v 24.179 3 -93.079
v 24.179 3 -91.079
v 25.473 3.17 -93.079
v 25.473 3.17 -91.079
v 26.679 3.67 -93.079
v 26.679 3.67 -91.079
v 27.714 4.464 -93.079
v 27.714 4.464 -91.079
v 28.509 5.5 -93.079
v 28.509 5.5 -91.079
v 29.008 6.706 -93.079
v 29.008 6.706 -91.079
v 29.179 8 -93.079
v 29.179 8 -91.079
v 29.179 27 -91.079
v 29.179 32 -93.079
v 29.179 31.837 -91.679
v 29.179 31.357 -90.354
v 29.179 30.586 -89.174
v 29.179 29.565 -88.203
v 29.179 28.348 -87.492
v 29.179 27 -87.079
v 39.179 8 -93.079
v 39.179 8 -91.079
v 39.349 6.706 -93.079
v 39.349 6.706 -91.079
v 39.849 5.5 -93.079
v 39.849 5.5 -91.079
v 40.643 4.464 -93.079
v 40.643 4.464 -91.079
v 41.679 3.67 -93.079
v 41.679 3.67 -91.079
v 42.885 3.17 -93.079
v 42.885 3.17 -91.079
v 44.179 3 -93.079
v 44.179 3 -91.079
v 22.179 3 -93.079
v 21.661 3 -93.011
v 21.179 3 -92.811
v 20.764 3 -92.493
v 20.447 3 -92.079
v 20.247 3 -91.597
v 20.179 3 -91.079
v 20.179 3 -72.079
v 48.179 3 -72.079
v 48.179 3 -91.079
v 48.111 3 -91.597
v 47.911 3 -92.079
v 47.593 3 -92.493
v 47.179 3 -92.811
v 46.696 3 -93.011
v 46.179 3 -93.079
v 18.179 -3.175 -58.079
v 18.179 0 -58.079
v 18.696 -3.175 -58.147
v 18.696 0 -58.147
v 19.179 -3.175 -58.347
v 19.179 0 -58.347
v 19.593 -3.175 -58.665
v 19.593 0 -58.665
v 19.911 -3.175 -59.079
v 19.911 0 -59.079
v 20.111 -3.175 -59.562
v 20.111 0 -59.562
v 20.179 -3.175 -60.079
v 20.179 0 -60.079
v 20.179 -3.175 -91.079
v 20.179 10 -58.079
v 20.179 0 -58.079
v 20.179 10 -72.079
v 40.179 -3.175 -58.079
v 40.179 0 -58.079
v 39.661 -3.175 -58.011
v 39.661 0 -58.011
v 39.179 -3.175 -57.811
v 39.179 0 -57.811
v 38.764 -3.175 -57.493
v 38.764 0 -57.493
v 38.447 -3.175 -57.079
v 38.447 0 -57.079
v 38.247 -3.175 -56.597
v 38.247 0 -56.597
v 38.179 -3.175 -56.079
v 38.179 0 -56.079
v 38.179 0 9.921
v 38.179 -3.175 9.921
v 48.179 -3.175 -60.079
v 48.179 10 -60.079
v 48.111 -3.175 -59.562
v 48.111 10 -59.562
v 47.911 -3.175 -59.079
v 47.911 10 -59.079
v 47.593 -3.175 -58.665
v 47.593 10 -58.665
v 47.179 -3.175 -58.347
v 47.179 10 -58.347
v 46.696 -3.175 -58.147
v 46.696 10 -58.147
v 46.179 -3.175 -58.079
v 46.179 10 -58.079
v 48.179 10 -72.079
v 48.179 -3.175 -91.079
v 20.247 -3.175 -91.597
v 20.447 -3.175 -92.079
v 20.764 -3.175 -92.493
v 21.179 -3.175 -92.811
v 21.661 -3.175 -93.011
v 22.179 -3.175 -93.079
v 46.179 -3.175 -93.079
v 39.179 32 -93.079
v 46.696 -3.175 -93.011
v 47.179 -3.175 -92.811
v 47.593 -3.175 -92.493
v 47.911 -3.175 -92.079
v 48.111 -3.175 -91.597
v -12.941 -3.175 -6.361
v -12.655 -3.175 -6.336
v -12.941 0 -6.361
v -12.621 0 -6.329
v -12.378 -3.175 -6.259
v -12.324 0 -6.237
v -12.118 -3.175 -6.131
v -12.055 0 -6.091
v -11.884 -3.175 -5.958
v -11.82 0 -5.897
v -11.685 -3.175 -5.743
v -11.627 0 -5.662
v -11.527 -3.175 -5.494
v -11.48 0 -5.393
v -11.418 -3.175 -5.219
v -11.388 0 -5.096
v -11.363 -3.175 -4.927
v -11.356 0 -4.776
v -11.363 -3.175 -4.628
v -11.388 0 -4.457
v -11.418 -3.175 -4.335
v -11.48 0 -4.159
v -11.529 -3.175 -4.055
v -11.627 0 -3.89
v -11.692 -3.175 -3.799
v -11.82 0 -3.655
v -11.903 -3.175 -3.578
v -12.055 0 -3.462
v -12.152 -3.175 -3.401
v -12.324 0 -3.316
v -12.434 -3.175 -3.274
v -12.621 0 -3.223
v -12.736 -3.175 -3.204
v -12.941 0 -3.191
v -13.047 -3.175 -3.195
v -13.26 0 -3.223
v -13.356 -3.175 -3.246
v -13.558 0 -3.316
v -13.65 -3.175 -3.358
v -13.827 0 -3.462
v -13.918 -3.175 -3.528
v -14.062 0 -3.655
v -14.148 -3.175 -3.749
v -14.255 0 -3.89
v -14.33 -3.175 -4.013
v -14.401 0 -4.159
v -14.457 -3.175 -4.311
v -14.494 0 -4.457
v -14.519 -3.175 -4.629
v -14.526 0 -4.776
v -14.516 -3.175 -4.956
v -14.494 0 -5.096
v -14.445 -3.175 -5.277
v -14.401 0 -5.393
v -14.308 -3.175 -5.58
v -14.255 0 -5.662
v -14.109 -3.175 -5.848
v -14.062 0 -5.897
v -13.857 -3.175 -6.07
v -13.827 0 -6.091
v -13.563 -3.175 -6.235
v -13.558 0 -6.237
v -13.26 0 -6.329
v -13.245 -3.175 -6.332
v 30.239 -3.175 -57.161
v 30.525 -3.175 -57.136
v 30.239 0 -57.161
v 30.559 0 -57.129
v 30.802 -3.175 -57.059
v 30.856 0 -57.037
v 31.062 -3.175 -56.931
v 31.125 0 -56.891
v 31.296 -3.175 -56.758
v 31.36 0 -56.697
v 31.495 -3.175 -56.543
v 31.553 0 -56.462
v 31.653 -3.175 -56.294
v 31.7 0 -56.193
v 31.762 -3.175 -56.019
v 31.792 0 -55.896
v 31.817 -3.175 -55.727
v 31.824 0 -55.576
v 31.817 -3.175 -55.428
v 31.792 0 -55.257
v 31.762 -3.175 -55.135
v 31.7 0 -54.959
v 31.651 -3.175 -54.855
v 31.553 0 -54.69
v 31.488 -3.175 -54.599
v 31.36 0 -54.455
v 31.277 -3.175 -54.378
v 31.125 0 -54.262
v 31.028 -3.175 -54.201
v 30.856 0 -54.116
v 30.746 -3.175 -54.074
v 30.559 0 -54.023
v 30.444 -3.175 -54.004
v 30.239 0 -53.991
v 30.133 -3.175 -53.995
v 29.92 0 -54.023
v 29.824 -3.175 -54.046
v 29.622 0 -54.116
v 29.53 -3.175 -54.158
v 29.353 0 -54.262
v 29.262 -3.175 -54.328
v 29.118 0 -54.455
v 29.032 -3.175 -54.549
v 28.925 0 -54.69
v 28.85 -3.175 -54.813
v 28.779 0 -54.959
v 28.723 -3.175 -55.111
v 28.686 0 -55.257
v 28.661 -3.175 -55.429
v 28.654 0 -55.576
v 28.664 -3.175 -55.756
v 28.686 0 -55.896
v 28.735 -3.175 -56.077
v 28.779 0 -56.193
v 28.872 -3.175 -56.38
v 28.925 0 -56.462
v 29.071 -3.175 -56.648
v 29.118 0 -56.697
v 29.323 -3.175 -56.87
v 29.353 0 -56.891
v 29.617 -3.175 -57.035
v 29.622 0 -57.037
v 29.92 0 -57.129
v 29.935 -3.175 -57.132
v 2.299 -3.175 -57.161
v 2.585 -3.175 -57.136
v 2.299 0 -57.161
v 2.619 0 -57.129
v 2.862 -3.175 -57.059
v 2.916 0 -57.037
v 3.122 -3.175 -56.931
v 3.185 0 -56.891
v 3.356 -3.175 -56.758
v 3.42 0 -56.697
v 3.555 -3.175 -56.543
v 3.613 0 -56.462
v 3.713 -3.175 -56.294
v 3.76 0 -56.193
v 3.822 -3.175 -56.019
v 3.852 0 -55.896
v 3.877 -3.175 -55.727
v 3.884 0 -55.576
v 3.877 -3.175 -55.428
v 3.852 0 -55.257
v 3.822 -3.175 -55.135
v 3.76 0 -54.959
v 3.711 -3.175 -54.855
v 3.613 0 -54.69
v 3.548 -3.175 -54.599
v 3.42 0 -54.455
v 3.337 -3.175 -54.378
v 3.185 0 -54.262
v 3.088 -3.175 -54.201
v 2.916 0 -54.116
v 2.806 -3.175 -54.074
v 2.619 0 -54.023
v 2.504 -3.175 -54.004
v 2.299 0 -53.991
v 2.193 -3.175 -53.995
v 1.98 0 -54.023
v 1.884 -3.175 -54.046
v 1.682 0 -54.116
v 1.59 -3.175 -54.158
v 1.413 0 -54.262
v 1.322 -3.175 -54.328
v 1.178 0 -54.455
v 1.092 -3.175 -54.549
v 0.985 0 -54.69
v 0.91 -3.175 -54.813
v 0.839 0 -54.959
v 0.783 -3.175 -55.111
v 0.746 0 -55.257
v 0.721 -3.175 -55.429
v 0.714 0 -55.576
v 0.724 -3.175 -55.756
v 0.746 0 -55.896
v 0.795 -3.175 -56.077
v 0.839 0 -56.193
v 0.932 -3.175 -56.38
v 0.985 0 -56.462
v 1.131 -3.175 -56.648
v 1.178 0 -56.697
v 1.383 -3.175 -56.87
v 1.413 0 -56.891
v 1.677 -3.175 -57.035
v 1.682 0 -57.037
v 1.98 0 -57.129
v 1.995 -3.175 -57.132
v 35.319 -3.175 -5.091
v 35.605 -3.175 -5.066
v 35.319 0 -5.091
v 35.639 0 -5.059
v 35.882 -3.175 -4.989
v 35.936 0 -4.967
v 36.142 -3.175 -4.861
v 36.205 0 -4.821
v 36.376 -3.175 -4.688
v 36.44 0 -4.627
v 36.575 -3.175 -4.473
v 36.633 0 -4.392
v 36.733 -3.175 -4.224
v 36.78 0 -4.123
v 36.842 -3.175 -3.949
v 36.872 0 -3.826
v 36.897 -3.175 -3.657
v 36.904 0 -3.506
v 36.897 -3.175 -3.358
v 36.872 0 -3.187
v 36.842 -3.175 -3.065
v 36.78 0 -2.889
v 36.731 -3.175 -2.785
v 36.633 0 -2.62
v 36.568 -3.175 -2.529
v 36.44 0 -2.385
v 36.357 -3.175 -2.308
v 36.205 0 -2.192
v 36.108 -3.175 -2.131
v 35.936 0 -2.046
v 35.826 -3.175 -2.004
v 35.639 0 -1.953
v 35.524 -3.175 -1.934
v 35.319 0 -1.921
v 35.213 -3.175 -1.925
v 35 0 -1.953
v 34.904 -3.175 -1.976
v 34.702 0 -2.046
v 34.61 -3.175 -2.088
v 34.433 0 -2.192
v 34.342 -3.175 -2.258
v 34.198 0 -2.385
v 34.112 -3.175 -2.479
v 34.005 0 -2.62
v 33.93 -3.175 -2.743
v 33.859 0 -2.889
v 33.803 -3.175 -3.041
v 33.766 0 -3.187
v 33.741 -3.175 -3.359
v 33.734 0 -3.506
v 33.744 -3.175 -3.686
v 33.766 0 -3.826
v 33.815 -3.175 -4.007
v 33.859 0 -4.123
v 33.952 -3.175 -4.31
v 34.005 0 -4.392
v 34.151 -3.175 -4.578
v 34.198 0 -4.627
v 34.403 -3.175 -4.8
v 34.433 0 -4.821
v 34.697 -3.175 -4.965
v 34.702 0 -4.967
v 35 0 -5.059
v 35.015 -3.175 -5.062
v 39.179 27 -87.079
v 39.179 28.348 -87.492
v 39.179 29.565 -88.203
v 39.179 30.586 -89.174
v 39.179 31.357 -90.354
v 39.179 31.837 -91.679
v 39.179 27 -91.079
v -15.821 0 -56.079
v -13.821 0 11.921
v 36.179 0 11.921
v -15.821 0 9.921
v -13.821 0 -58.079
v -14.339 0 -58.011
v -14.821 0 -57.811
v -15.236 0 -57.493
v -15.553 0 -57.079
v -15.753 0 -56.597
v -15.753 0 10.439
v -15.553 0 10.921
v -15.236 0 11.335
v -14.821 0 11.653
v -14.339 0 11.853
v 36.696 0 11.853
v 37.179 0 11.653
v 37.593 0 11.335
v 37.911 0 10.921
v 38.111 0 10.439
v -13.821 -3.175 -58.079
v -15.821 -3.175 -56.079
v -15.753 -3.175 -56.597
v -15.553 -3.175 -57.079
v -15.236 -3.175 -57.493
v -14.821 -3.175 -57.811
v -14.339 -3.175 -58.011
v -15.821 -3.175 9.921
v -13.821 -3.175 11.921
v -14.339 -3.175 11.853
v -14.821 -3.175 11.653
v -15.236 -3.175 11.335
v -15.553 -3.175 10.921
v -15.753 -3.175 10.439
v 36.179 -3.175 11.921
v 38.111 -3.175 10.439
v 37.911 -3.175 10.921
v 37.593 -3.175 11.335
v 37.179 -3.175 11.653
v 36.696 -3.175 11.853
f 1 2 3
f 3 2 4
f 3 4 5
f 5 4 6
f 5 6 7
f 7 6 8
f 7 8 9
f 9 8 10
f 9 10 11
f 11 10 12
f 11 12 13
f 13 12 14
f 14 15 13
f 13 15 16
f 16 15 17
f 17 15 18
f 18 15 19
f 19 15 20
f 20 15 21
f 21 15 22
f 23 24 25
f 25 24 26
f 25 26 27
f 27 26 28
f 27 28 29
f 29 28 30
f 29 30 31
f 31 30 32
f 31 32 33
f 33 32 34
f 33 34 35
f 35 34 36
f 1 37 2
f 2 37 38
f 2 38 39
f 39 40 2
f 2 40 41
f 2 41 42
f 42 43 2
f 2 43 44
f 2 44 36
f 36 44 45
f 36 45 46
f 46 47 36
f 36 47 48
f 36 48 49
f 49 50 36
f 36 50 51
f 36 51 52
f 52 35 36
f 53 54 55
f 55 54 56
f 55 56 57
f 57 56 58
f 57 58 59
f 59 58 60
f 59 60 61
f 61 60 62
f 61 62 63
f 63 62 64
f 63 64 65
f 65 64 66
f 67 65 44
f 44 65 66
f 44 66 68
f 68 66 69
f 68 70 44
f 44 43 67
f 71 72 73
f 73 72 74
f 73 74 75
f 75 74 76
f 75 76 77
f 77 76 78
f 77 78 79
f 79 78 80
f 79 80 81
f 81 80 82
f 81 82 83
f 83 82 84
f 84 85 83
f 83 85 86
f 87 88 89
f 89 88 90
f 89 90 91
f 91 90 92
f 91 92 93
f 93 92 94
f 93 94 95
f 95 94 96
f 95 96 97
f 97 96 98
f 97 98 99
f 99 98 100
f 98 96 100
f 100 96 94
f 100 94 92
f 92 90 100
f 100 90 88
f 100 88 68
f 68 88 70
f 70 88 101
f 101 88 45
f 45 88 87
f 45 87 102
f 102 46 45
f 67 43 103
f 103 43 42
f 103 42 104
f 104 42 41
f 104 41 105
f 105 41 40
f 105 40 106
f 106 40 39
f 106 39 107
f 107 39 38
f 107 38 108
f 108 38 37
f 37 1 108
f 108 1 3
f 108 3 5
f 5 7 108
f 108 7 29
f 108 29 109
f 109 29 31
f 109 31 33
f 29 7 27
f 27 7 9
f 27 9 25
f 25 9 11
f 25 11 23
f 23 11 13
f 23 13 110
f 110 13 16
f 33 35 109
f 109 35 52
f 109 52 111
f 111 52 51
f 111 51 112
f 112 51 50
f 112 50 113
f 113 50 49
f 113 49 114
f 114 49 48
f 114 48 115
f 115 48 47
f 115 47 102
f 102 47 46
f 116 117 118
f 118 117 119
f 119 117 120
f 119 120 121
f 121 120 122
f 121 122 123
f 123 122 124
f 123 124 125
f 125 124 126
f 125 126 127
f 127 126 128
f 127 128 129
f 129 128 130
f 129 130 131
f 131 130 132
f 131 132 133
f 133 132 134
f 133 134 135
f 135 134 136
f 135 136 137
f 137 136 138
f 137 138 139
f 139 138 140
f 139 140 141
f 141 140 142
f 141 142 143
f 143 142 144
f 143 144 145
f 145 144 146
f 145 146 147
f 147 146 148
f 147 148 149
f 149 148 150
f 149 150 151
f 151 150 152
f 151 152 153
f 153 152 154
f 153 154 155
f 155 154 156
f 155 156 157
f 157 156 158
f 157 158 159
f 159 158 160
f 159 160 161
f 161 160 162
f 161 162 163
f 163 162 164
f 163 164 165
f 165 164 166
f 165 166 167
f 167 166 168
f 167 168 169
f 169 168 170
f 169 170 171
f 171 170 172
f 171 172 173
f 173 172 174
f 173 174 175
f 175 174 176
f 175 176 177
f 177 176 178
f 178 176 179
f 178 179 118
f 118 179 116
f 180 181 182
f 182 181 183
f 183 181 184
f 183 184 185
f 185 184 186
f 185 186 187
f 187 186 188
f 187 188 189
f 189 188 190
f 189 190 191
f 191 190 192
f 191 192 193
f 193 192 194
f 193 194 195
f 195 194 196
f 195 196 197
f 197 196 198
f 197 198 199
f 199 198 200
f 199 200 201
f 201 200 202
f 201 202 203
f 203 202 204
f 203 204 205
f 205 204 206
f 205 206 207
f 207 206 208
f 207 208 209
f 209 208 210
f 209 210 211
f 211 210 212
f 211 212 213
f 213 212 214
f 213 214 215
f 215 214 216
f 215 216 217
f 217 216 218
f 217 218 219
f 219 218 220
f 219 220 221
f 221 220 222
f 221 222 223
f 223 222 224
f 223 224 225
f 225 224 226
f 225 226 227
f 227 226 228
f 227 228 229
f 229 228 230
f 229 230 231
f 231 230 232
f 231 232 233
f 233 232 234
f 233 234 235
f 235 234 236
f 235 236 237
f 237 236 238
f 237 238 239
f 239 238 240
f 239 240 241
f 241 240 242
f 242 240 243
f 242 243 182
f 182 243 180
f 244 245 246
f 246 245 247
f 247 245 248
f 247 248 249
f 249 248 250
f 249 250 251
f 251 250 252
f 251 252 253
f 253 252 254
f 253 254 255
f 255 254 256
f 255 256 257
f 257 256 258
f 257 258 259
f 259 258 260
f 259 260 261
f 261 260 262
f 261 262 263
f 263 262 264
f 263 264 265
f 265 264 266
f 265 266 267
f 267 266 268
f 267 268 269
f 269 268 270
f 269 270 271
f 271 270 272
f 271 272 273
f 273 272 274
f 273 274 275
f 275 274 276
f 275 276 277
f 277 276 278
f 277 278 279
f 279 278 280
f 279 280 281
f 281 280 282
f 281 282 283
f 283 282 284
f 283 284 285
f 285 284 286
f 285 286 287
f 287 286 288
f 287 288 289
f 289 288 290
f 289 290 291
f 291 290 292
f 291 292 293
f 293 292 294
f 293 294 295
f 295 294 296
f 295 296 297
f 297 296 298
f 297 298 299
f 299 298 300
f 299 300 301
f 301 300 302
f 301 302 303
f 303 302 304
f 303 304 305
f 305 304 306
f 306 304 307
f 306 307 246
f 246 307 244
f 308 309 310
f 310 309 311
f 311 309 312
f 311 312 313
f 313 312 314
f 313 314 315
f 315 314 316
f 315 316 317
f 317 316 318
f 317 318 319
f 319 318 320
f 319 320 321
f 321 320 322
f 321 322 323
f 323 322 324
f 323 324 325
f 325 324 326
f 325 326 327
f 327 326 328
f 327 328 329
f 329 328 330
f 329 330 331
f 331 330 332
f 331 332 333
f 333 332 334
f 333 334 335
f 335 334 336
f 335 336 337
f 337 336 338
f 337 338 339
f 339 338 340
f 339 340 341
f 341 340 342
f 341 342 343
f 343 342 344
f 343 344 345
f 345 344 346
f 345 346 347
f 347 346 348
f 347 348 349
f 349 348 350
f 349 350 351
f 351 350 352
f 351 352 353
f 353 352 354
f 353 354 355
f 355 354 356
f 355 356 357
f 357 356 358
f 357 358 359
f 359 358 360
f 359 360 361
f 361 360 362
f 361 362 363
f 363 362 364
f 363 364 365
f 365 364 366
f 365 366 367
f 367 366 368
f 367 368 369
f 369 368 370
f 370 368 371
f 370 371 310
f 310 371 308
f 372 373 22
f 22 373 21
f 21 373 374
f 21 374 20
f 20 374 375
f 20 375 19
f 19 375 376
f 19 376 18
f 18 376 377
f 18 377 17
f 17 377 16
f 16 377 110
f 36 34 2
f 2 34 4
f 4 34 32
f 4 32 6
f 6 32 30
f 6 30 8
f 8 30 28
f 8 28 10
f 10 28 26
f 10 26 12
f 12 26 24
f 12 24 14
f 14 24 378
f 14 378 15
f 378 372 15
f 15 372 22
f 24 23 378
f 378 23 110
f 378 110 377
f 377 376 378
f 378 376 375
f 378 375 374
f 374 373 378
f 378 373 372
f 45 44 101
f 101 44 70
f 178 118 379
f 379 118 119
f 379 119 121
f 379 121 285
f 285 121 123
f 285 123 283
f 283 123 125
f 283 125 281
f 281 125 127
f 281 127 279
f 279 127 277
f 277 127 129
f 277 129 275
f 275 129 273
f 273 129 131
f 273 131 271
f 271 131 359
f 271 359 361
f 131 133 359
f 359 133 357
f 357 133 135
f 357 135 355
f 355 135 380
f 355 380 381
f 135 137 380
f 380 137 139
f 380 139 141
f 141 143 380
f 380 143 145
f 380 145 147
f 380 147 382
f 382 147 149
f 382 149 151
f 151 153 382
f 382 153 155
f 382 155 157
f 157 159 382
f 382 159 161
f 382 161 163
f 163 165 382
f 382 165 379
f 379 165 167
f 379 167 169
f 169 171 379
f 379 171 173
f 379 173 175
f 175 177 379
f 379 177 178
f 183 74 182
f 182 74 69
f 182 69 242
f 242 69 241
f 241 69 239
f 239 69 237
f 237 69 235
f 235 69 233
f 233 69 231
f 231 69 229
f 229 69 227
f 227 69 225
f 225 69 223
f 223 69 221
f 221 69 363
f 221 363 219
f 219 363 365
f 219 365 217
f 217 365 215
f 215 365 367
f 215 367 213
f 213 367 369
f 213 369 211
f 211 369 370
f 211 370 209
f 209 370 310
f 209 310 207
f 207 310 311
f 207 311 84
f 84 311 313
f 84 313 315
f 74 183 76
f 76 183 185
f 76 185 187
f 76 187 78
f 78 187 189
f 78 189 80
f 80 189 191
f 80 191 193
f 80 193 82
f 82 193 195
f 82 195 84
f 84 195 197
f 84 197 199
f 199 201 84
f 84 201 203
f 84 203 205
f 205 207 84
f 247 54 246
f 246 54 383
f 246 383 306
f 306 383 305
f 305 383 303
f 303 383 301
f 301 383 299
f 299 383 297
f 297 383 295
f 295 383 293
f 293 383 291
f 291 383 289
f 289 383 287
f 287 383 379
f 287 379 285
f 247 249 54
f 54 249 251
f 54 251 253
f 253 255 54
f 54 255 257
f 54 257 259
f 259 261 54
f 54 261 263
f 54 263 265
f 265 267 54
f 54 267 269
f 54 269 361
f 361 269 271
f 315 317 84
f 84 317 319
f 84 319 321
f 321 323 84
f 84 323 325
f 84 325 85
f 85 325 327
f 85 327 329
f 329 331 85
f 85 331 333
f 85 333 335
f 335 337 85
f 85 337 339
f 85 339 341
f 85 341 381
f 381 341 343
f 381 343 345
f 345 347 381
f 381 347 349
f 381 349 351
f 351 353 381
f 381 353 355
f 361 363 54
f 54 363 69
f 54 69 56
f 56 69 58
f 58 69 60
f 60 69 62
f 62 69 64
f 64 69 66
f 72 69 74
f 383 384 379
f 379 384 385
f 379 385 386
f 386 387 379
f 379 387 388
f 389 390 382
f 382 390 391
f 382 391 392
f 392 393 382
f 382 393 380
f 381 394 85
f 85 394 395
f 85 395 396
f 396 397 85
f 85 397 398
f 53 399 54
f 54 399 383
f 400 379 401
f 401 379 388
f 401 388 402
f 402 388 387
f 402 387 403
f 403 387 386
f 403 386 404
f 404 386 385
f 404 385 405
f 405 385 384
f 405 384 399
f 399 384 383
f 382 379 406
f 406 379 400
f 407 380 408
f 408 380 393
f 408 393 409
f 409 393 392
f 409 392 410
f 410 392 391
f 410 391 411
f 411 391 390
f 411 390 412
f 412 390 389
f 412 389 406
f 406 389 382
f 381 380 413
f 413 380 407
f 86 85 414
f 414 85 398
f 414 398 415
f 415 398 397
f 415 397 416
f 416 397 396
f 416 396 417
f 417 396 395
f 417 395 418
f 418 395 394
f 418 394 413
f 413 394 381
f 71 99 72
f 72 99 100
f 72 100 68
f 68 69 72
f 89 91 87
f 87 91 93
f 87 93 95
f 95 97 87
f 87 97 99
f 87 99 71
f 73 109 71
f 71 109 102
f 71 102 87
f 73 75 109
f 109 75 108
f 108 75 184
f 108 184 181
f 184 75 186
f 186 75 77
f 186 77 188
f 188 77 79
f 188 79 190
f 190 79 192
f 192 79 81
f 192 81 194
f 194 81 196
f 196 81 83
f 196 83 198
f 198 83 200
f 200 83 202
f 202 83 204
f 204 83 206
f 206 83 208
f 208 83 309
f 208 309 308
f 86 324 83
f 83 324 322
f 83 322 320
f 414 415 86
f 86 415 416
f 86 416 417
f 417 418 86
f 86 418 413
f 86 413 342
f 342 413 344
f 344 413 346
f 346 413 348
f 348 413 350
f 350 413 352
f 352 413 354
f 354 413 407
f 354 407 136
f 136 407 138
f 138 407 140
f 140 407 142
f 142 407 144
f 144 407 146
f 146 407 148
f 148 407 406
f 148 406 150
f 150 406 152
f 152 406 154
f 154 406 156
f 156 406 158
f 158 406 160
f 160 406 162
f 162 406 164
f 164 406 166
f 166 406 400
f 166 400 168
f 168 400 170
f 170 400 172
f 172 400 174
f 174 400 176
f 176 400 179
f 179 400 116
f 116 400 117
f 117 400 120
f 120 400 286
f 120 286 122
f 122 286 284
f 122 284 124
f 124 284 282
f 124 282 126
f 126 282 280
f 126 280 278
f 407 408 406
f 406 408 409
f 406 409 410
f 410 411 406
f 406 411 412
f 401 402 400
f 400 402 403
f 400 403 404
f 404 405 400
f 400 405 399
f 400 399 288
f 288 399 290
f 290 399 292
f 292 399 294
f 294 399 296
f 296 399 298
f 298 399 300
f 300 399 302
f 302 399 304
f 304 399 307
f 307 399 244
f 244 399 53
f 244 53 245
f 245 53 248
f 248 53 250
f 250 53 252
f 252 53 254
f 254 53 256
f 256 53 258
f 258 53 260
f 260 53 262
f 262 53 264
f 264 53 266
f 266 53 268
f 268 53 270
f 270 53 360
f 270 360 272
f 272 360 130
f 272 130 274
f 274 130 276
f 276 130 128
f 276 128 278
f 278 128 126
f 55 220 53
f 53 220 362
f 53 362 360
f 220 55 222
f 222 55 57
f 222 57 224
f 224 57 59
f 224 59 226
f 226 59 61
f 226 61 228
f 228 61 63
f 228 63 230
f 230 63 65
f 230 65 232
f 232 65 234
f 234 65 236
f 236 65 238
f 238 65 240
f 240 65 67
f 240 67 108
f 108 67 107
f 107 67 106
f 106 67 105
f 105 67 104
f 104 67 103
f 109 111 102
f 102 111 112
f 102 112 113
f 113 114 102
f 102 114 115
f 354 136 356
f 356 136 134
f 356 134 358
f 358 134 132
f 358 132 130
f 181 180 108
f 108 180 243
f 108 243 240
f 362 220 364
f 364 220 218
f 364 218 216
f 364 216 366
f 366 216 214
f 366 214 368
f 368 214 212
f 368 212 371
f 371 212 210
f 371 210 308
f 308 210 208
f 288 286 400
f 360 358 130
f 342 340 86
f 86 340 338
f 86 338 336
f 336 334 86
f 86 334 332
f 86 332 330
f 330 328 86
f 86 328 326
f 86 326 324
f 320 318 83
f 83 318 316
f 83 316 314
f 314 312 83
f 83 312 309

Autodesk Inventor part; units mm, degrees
ref_plane "YZ Plane" through (0, 0, 0) normal (1, 0, 0) x (0, 1, 0)
ref_plane "XZ Plane" through (0, 0, 0) normal (0, 1, 0) x (-1, 0, 0)
ref_plane "XY Plane" through (0, 0, 0) normal (0, 0, 1) x (1, 0, 0)
sketch "Sketch1" plane through (0, 0, 0) normal (0, 1, 0) x (-1, 0, 0)
  line L0 (13.8213, 11.9209) -> (-36.1787, 11.9209)
  line L1 (-38.1787, 9.9209) -> (-38.1787, -58.0791)
  line L2 (-38.1787, -58.0791) -> (13.8213, -58.0791)
  line L3 (15.8213, -56.0791) -> (15.8213, 9.9209)
  line L4 (-20.1787, -58.0791) -> (-48.1787, -58.0791)
  line L5 (-48.1787, -58.0791) -> (-48.1787, -93.0791)
  line L6 (-48.1787, -93.0791) -> (-20.1787, -93.0791)
  line L7 (-20.1787, -93.0791) -> (-20.1787, -58.0791)
  arc A0 (15.8213, 9.9209) -> (13.8213, 11.9209) centre (13.8213, 9.9209) ccw
  arc A1 (13.8213, -58.0791) -> (15.8213, -56.0791) centre (13.8213, -56.0791) ccw
  arc A2 (-36.1787, 11.9209) -> (-38.1787, 9.9209) centre (-36.1787, 9.9209) ccw
  point P0 (0, 0)
  point P1 (15.8213, 11.9209)
  point P2 (-38.1787, 11.9209)
  point P3 (15.8213, -58.0791)
  dimension "d0" = 54
  dimension "d1" = 70
  dimension "d2" = 28
  dimension "d3" = 10
  dimension "d4" = 35
  dimension "d20" = 2
extrude "Extrusion1" add sketch "Sketch1" against normal blind 3.175
sketch "Sketch2" plane through (0, 0, 0) normal (0, 1, 0) x (1, 0, 0)
  line L0 (20.1787, 93.0791) -> (20.1787, 58.0791) projected
  line L1 (48.1787, 58.0791) -> (48.1787, 93.0791) projected
  line L2 (20.1787, 93.0791) -> (48.1787, 93.0791)
  line L3 (48.1787, 93.0791) -> (48.1787, 72.0791)
  line L4 (48.1787, 72.0791) -> (20.1787, 72.0791)
  line L5 (20.1787, 72.0791) -> (20.1787, 93.0791)
  line L6 (38.1787, 58.0791) -> (48.1787, 58.0791) projected
  point P0 (0, 0)
  dimension "d7" = 14
extrude "Extrusion2" add sketch "Sketch2" along normal blind 3
sketch "Sketch3" plane through (0, 0, 0) normal (0, 1, 0) x (1, 0, 0)
  line L0 (48.1787, 72.0791) -> (20.1787, 72.0791) projected
  line L1 (48.1787, 93.0791) -> (48.1787, 58.0791) projected
  line L2 (20.1787, 72.0791) -> (48.1787, 72.0791)
  line L3 (48.1787, 72.0791) -> (48.1787, 58.0791)
  line L4 (48.1787, 58.0791) -> (20.1787, 58.0791)
  line L5 (20.1787, 58.0791) -> (20.1787, 72.0791)
  point P0 (0, 0)
extrude "Extrusion3" add sketch "Sketch3" along normal blind 10
ref_plane "Work Plane1" through (34.1787, -3.175, -58.0791) normal (1, 0, 0) x (0, 0, -1)
sketch "Sketch4" plane through (34.1787, -3.175, -58.0791) normal (1, 0, 0) x (0, 0, -1)
  line L0 (29, 30.175) -> (33, 30.175)
  line L1 (33, 30.175) -> (33, 6.175)
  line L2 (35, 6.175) -> (14, 6.175) projected
  line L3 (35, 6.175) -> (35, 35.175)
  arc A0 (35, 35.175) -> (29, 30.175) centre (35, 29.075) ccw
  point P0 (-58.0791, 3.175)
  dimension "d12" = 2
  dimension "d13" = 29
  dimension "d14" = 24
  dimension "d15" = 4
extrude "Extrusion4" add sketch "Sketch4" along normal mid plane 10
sketch "Sketch5" plane through (0, 0, 0) normal (0, 1, 0) x (1, 0, 0)
  line L0 (37.8591, -10.4638) -> (37.8591, 55.5762)
  line L1 (37.8591, 55.5762) -> (35.3191, 55.5762)
  line L2 (35.3191, 55.5762) -> (32.7791, 58.1162)
  line L3 (32.7791, 58.1162) -> (-0.2409, 58.1162)
  line L4 (-0.2409, 58.1162) -> (-2.7809, 55.5762)
  line L5 (-2.7809, 55.5762) -> (-14.2109, 55.5762)
  line L6 (-14.2109, 55.5762) -> (-15.4809, 54.3062)
  line L7 (-15.4809, 54.3062) -> (-15.4809, -10.4638)
  line L8 (-15.4809, -10.4638) -> (37.8591, -10.4638)
  spline S0 degree 3 poles (30.2391, 57.1613) (31.1145, 57.1613) (31.8242, 56.4516) (31.8242, 55.5762) (31.8242, 54.7008) (31.1145, 53.9911) (30.2391, 53.9911) (29.3637, 53.9911) (28.654, 54.7008) (28.654, 55.5762) (28.654, 56.4516) (29.3637, 57.1613) (30.2391, 57.1613) knots 0 0 0 0 1 1 1 2 2 2 3 3 3 4 4 4 4
  line L9 (30.2391, 57.1613) -> (31.1145, 57.1613) construction
  line L10 (31.1145, 57.1613) -> (31.8242, 56.4516) construction
  line L11 (31.8242, 56.4516) -> (31.8242, 55.5762) construction
  line L12 (31.8242, 55.5762) -> (31.8242, 54.7008) construction
  line L13 (31.8242, 54.7008) -> (31.1145, 53.9911) construction
  line L14 (31.1145, 53.9911) -> (30.2391, 53.9911) construction
  line L15 (30.2391, 53.9911) -> (29.3637, 53.9911) construction
  line L16 (29.3637, 53.9911) -> (28.654, 54.7008) construction
  line L17 (28.654, 54.7008) -> (28.654, 55.5762) construction
  line L18 (28.654, 55.5762) -> (28.654, 56.4516) construction
  line L19 (28.654, 56.4516) -> (29.3637, 57.1613) construction
  line L20 (29.3637, 57.1613) -> (30.2391, 57.1613) construction
  spline S1 degree 3 poles (2.2991, 57.1613) (3.1745, 57.1613) (3.8842, 56.4516) (3.8842, 55.5762) (3.8842, 54.7008) (3.1745, 53.9911) (2.2991, 53.9911) (1.4237, 53.9911) (0.714, 54.7008) (0.714, 55.5762) (0.714, 56.4516) (1.4237, 57.1613) (2.2991, 57.1613) knots 0 0 0 0 1 1 1 2 2 2 3 3 3 4 4 4 4
  line L21 (2.2991, 57.1613) -> (3.1745, 57.1613) construction
  line L22 (3.1745, 57.1613) -> (3.8842, 56.4516) construction
  line L23 (3.8842, 56.4516) -> (3.8842, 55.5762) construction
  line L24 (3.8842, 55.5762) -> (3.8842, 54.7008) construction
  line L25 (3.8842, 54.7008) -> (3.1745, 53.9911) construction
  line L26 (3.1745, 53.9911) -> (2.2991, 53.9911) construction
  line L27 (2.2991, 53.9911) -> (1.4237, 53.9911) construction
  line L28 (1.4237, 53.9911) -> (0.714, 54.7008) construction
  line L29 (0.714, 54.7008) -> (0.714, 55.5762) construction
  line L30 (0.714, 55.5762) -> (0.714, 56.4516) construction
  line L31 (0.714, 56.4516) -> (1.4237, 57.1613) construction
  line L32 (1.4237, 57.1613) -> (2.2991, 57.1613) construction
  spline S2 degree 3 poles (-12.9409, 6.3613) (-12.0655, 6.3613) (-11.3558, 5.6516) (-11.3558, 4.7762) (-11.3558, 3.9008) (-12.0655, 3.1911) (-12.9409, 3.1911) (-13.8163, 3.1911) (-14.526, 3.9008) (-14.526, 4.7762) (-14.526, 5.6516) (-13.8163, 6.3613) (-12.9409, 6.3613) knots 0 0 0 0 1 1 1 2 2 2 3 3 3 4 4 4 4
  line L33 (-12.9409, 6.3613) -> (-12.0655, 6.3613) construction
  line L34 (-12.0655, 6.3613) -> (-11.3558, 5.6516) construction
  line L35 (-11.3558, 5.6516) -> (-11.3558, 4.7762) construction
  line L36 (-11.3558, 4.7762) -> (-11.3558, 3.9008) construction
  line L37 (-11.3558, 3.9008) -> (-12.0655, 3.1911) construction
  line L38 (-12.0655, 3.1911) -> (-12.9409, 3.1911) construction
  line L39 (-12.9409, 3.1911) -> (-13.8163, 3.1911) construction
  line L40 (-13.8163, 3.1911) -> (-14.526, 3.9008) construction
  line L41 (-14.526, 3.9008) -> (-14.526, 4.7762) construction
  line L42 (-14.526, 4.7762) -> (-14.526, 5.6516) construction
  line L43 (-14.526, 5.6516) -> (-13.8163, 6.3613) construction
  line L44 (-13.8163, 6.3613) -> (-12.9409, 6.3613) construction
  spline S3 degree 3 poles (35.3191, 5.0913) (36.1945, 5.0913) (36.9042, 4.3816) (36.9042, 3.5062) (36.9042, 2.6308) (36.1945, 1.9211) (35.3191, 1.9211) (34.4437, 1.9211) (33.734, 2.6308) (33.734, 3.5062) (33.734, 4.3816) (34.4437, 5.0913) (35.3191, 5.0913) knots 0 0 0 0 1 1 1 2 2 2 3 3 3 4 4 4 4
  line L45 (35.3191, 5.0913) -> (36.1945, 5.0913) construction
  line L46 (36.1945, 5.0913) -> (36.9042, 4.3816) construction
  line L47 (36.9042, 4.3816) -> (36.9042, 3.5062) construction
  line L48 (36.9042, 3.5062) -> (36.9042, 2.6308) construction
  line L49 (36.9042, 2.6308) -> (36.1945, 1.9211) construction
  line L50 (36.1945, 1.9211) -> (35.3191, 1.9211) construction
  line L51 (35.3191, 1.9211) -> (34.4437, 1.9211) construction
  line L52 (34.4437, 1.9211) -> (33.734, 2.6308) construction
  line L53 (33.734, 2.6308) -> (33.734, 3.5062) construction
  line L54 (33.734, 3.5062) -> (33.734, 4.3816) construction
  line L55 (33.734, 4.3816) -> (34.4437, 5.0913) construction
  line L56 (34.4437, 5.0913) -> (35.3191, 5.0913) construction
  point P0 (0, 0)
extrude "Extrusion5" cut sketch "Sketch5" against normal blind 10 contours S0 | S1 | S2 | S3
fillet "Fillet1" radius 2 5 edges at (48.1787, -0.0875, -93.0791) (20.1787, -0.0875, -93.0791) (48.1787, 3.4125, -58.0791) (38.1787, -1.5875, -58.0791) (20.1787, -1.5875, -58.0791)
fillet "Fillet2" radius 5 2 edges at (39.1787, 3, -92.0791) (29.1787, 3, -92.0791)
properties part number "arduinomount"
